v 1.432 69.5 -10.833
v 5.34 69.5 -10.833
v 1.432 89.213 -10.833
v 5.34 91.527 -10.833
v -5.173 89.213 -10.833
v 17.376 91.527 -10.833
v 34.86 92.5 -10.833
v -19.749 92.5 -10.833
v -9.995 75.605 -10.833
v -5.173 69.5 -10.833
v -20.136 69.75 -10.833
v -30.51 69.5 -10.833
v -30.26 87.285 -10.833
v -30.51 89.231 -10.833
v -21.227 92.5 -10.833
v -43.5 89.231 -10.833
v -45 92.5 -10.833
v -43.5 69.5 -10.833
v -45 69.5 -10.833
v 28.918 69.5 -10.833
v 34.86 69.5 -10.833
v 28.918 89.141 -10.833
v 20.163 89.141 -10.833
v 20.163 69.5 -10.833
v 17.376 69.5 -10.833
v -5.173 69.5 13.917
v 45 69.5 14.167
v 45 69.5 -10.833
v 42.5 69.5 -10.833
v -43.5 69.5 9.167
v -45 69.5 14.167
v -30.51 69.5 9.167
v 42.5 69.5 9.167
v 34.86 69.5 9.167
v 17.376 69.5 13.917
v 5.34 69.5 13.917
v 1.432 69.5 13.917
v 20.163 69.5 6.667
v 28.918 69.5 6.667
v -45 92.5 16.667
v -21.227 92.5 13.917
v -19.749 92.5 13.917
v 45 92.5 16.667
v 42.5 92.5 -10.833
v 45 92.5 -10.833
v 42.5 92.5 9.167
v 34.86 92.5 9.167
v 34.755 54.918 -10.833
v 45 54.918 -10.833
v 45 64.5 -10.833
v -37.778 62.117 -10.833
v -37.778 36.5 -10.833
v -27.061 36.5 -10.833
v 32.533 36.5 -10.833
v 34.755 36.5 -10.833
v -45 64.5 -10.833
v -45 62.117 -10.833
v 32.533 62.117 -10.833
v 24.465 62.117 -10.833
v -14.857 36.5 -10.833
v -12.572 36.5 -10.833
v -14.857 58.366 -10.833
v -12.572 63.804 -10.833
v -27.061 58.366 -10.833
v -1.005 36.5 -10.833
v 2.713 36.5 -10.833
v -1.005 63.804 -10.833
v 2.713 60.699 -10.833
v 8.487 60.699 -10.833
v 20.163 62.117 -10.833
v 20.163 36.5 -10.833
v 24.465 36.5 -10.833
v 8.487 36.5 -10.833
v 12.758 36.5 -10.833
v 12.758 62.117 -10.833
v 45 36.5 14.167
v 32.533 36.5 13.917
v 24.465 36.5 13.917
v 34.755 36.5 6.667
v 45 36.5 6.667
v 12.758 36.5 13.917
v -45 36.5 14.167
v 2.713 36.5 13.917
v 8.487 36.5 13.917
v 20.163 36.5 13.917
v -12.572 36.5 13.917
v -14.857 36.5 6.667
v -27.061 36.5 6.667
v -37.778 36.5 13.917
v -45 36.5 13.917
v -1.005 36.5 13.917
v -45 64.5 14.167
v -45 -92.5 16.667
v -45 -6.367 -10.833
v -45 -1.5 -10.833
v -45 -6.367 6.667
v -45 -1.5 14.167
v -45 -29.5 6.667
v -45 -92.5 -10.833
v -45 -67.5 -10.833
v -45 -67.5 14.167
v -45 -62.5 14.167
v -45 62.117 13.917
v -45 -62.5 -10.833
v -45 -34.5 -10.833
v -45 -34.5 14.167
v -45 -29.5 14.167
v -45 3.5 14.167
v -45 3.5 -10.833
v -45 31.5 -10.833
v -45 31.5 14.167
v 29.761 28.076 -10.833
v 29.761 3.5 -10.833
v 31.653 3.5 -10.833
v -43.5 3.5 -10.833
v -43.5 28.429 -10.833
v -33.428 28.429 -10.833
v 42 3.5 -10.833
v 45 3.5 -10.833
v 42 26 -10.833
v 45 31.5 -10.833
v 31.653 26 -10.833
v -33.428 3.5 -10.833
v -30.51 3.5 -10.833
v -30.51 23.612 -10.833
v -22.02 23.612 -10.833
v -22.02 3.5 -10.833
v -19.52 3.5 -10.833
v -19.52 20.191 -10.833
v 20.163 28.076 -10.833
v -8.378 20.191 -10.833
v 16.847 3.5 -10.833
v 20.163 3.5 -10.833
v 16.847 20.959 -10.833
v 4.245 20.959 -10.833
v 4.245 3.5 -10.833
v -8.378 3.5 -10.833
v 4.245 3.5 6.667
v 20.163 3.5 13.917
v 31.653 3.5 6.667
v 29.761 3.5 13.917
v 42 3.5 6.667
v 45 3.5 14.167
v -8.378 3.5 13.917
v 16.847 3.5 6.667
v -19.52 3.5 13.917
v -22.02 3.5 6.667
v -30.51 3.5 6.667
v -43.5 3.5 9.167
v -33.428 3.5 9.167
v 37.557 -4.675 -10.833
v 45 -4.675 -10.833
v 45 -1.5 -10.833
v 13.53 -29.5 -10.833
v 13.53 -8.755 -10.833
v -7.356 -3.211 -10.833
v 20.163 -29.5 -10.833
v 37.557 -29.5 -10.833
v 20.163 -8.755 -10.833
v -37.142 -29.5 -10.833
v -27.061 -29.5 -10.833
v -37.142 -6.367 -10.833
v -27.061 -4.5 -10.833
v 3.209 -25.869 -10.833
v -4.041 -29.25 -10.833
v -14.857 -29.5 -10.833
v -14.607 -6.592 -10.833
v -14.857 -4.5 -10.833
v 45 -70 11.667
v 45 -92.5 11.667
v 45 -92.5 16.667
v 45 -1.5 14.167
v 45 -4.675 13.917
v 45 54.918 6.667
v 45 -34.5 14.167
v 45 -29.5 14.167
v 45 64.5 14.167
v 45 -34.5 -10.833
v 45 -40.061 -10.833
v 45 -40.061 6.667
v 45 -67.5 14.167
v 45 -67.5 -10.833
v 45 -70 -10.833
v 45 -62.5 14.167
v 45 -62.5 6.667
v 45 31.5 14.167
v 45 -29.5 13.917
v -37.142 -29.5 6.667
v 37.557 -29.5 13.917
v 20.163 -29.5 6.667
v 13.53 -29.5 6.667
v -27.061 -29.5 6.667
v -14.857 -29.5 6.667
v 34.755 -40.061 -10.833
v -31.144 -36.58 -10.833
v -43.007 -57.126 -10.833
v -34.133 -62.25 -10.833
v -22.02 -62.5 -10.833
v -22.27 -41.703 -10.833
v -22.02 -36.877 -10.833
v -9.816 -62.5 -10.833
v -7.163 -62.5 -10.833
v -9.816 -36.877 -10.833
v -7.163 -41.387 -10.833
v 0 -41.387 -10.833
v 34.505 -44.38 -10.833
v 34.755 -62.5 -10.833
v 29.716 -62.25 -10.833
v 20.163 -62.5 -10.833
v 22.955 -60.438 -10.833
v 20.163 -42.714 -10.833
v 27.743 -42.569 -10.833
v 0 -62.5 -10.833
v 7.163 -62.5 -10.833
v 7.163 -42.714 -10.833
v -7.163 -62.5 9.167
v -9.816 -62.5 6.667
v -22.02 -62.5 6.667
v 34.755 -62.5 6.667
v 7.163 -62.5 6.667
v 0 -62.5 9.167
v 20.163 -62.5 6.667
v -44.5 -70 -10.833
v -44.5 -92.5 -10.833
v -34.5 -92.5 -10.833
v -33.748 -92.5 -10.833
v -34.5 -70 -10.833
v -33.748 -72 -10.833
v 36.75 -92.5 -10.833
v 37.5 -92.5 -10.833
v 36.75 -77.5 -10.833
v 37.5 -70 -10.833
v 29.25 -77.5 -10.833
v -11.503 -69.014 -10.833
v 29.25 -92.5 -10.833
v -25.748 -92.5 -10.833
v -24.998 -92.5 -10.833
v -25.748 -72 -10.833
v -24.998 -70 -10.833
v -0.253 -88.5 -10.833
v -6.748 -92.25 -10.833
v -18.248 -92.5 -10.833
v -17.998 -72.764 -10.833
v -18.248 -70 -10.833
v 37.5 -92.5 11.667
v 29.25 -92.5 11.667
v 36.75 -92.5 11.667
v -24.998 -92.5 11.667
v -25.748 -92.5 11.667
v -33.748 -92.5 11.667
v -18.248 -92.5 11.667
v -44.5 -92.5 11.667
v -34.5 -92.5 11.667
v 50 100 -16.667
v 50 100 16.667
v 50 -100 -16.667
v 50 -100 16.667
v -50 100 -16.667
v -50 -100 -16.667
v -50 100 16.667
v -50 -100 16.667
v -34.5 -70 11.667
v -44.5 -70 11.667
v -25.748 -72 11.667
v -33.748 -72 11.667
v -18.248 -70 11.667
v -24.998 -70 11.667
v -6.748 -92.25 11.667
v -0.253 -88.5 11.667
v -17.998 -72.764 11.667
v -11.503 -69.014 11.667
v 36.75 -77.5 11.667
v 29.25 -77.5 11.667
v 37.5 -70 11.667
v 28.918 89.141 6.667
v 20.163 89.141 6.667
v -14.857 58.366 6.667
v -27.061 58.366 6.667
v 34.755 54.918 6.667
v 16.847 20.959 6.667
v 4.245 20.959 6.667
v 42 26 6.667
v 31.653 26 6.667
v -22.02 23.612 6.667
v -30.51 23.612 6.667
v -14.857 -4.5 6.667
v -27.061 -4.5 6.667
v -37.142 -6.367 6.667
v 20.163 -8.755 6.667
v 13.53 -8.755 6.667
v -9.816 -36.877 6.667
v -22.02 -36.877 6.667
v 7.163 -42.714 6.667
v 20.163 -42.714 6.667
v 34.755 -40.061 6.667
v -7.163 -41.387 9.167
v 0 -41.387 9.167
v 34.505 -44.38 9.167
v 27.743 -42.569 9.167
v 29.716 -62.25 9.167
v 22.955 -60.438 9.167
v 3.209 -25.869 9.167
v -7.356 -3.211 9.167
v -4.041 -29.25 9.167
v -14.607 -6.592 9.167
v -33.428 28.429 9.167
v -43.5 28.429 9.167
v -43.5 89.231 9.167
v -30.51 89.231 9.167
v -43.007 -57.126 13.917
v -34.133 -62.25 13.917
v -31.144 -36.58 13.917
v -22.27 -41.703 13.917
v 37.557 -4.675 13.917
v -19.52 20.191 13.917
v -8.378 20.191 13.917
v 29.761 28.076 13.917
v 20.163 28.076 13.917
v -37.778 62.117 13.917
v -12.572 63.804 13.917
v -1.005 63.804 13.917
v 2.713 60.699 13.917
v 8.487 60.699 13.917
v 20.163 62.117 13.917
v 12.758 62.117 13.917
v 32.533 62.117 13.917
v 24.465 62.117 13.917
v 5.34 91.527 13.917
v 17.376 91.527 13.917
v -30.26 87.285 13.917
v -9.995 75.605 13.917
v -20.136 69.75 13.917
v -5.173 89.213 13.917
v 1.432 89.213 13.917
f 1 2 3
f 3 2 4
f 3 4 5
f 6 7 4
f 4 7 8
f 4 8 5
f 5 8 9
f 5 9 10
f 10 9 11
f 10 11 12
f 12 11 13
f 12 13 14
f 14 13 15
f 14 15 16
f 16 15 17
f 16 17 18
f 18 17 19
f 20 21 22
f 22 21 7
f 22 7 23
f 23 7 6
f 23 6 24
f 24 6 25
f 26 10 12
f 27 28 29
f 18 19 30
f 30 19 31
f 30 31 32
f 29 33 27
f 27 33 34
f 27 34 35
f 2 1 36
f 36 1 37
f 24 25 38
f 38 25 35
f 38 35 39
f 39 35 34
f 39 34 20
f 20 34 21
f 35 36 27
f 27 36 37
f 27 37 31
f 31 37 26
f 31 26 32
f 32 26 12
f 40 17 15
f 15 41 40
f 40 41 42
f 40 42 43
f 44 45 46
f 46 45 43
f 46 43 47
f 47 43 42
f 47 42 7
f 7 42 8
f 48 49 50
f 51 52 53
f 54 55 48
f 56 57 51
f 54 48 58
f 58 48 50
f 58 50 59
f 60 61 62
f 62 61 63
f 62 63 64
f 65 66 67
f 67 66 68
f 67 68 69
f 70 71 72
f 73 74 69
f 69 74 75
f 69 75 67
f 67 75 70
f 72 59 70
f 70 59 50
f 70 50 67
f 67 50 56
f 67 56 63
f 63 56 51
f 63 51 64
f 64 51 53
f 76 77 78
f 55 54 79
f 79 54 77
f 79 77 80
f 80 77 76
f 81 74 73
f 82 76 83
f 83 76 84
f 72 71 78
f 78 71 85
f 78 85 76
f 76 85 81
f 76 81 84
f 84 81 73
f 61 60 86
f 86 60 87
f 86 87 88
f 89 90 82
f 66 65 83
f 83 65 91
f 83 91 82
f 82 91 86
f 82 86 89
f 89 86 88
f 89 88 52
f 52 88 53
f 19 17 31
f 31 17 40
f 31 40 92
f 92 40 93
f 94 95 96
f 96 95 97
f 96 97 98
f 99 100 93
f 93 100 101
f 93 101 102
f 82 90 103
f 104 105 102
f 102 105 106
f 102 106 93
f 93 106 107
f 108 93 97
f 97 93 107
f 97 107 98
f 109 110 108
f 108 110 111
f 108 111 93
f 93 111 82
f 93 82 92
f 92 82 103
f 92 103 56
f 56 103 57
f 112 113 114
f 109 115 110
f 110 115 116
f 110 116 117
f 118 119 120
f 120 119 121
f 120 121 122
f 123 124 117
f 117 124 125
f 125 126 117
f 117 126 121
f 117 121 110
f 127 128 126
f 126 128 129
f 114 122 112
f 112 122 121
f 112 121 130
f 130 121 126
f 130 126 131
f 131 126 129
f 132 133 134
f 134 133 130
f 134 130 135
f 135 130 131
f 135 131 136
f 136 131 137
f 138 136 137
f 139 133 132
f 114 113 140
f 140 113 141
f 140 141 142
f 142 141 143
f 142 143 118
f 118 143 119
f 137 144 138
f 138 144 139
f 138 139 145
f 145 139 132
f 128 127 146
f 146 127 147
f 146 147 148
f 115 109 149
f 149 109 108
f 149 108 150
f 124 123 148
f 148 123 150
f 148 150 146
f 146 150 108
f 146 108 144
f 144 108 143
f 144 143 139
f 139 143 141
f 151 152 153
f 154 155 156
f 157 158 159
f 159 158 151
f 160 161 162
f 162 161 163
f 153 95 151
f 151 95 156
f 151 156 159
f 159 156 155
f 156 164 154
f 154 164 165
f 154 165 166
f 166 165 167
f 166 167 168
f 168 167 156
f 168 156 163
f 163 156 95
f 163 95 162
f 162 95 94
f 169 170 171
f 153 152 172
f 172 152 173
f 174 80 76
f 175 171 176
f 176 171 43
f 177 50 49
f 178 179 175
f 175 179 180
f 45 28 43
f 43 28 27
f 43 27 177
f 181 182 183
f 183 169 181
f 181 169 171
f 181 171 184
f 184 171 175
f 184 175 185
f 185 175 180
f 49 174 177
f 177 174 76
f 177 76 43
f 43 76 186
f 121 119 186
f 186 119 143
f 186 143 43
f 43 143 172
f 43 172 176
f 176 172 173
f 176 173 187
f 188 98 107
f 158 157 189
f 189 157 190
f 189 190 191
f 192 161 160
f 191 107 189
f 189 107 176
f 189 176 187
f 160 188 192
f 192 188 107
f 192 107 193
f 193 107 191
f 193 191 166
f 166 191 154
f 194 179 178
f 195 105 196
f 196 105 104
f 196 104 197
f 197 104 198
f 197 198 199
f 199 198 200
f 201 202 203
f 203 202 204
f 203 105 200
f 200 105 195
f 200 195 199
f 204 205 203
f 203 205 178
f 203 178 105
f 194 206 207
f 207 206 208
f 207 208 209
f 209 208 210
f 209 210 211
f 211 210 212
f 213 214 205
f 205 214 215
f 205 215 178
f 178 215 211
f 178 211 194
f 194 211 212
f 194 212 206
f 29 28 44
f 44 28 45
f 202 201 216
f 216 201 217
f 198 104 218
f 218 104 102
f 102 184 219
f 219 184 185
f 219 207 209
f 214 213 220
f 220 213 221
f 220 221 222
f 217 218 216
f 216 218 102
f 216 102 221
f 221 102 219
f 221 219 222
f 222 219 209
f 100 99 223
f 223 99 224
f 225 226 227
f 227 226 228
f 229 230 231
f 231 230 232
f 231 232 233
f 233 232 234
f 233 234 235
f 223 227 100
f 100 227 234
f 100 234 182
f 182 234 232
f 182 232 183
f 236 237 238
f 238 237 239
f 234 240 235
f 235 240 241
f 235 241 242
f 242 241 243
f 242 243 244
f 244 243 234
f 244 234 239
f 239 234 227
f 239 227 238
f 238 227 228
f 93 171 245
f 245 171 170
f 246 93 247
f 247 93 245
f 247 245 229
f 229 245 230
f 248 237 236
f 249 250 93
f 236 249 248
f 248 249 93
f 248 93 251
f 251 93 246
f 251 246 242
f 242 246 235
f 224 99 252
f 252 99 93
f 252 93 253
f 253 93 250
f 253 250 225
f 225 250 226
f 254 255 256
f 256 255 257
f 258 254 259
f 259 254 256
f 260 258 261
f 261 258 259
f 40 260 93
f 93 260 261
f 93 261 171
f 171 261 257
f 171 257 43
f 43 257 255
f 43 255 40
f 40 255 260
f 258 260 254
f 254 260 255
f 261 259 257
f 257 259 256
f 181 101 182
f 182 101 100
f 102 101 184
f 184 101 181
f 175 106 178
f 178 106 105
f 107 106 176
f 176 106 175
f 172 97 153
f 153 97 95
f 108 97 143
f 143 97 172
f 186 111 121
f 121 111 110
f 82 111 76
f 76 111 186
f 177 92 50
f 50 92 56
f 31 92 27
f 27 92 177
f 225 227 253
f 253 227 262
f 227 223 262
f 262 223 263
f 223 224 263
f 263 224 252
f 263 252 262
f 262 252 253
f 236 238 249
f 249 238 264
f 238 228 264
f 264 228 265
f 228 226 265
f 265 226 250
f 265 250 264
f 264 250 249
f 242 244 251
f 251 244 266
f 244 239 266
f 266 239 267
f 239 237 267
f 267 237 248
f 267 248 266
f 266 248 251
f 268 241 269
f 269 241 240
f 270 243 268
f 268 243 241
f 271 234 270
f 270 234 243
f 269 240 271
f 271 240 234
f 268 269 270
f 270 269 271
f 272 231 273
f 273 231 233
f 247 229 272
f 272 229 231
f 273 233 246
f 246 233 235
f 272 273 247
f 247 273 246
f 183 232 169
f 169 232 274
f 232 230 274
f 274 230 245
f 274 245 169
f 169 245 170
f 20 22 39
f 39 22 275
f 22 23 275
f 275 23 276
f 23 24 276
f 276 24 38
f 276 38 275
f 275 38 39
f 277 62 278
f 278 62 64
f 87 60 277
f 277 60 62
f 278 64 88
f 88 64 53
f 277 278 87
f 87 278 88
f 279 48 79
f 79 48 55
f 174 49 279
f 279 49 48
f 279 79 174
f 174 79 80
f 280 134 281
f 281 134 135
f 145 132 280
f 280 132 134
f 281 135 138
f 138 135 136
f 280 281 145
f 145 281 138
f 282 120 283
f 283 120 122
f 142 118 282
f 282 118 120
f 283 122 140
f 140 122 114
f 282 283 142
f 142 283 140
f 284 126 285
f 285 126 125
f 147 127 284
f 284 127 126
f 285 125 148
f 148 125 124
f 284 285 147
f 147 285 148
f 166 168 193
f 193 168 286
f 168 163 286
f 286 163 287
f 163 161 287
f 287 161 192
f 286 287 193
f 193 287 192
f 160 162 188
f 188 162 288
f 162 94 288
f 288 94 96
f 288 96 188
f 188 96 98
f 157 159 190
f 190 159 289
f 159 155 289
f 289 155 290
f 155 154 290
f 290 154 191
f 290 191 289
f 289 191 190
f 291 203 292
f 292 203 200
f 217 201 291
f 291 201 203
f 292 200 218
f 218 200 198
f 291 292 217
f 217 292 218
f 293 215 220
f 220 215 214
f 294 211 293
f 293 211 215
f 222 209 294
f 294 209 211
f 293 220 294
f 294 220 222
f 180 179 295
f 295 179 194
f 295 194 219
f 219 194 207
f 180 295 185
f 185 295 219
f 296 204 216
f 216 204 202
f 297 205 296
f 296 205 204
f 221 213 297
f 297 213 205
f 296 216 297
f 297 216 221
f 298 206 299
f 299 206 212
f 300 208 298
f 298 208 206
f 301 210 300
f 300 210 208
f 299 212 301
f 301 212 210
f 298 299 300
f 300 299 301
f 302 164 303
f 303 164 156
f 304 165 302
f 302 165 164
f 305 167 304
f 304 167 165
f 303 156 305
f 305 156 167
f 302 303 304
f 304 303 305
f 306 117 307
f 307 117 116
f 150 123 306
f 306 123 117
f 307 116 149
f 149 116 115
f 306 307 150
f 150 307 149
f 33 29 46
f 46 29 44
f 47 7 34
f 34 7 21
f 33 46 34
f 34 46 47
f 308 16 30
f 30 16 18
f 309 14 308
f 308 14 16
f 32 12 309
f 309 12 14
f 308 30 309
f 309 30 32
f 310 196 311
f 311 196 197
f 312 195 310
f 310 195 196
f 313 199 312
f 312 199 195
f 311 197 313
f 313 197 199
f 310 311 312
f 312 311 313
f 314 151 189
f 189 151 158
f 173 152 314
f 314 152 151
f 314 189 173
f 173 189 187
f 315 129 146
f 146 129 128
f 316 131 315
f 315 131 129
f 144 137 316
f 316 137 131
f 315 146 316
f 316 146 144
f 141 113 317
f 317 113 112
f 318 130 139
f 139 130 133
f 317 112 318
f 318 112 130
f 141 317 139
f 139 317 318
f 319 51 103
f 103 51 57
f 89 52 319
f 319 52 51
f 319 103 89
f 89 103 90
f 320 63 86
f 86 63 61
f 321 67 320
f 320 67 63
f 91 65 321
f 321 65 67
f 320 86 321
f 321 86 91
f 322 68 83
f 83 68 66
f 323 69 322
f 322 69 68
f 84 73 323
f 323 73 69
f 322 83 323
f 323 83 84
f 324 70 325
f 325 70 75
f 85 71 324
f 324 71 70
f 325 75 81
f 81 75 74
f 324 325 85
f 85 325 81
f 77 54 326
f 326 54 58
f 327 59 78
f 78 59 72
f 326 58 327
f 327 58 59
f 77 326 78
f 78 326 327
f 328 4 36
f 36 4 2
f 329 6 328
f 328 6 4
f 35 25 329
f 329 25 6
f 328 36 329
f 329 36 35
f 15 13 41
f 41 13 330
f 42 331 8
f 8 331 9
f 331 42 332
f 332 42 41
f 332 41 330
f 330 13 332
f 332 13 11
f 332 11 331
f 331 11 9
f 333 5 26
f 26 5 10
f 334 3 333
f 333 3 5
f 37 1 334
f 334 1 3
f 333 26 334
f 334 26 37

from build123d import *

# Parameters (mm, degrees)
SKETCH1_W           = 100
SKETCH1_H           = 33.333333334
BOSS_EXTRUDE1_DEPTH = 100
SKETCH2_W           = 90
SKETCH2_H           = 185
CUT_EXTRUDE1_DEPTH  = 27.5
SKETCH3_W           = 90
SKETCH3_H           = 5
BOSS_EXTRUDE2_DEPTH = 25
SKETCH4_W           = 7.5
SKETCH4_H           = 22.5
SKETCH4_H_2         = 15
SKETCH4_W_2         = 10
SKETCH4_W_3         = 8
SKETCH4_H_3         = 20.5
SKETCH4_W_4         = 6.75
BOSS_EXTRUDE5_DEPTH = 22.5
SKETCH5_W           = 10.245435458
SKETCH5_H           = 22.43939507
SKETCH5_W_2         = 12.999798951
SKETCH5_H_2         = 19.786374876
SKETCH5_W_3         = 12.203892893
SKETCH5_H_3         = 25.623019303
SKETCH5_W_4         = 7.857717283
SKETCH5_H_4         = 23.132751534
SKETCH5_W_5         = 12.203892892
SKETCH5_H_5         = 25
SKETCH5_W_6         = 6.632550485
SKETCH5_H_6         = 20.74503336
SKETCH5_W_7         = 10.346778757
SKETCH5_H_7         = 22.499597902
SKETCH5_W_8         = 12.601845922
SKETCH5_H_8         = 17.458859533
SKETCH5_W_9         = 8.489664621
SKETCH5_H_9         = 20.111879727
SKETCH5_H_10        = 18.417518017
SKETCH5_H_11        = 21.866444269
SKETCH5_W_10        = 8.75496664
SKETCH5_H_12        = 19.64147852
BOSS_EXTRUDE6_DEPTH = 17.5
SKETCH6_W           = 7.163154524
SKETCH6_H           = 21.112884973
SKETCH6_W_2         = 10.071772785
SKETCH6_H_2         = 24.928709858
SKETCH6_W_3         = 7.639556761
SKETCH6_H_3         = 23
SKETCH6_W_4         = 12.990267768
SKETCH6_H_4         = 19.731154058
BOSS_EXTRUDE7_DEPTH = 20
SKETCH7_W           = 7.443100334
SKETCH7_H           = 24.824572523
SKETCH7_W_2         = 11.141906558
SKETCH7_H_2         = 16.691268837
SKETCH7_W_3         = 9.597619028
SKETCH7_H_3         = 24.576310401
SKETCH7_W_4         = 7.222078614
SKETCH7_H_4         = 25.616891847
SKETCH7_W_5         = 11.567302571
SKETCH7_H_5         = 27.303769204
SKETCH7_W_6         = 5.774265567
SKETCH7_H_6         = 24.198791538
SKETCH7_W_7         = 7.404792338
SKETCH7_W_8         = 8.068151888
SKETCH7_W_9         = 12.035735356
SKETCH7_H_7         = 22.027016439
SKETCH7_W_10        = 6.605492776
SKETCH7_H_8         = 19.712859317
BOSS_EXTRUDE9_DEPTH = 24.75


with BuildPart() as part:
    # Sketch1 → Boss-Extrude1 (new body, symmetric)
    with BuildSketch(Plane(origin=(0, 0, 0), x_dir=(1, 0, 0), z_dir=(0, 1, 0))):
        Rectangle(SKETCH1_W, SKETCH1_H)
    extrude(amount=BOSS_EXTRUDE1_DEPTH, both=True)

    # Sketch2 → Cut-Extrude1 (cut)
    with BuildSketch(Plane.XY.offset(16.666666667)):
        Rectangle(SKETCH2_W, SKETCH2_H)
    extrude(amount=-CUT_EXTRUDE1_DEPTH, mode=Mode.SUBTRACT)

    # Sketch3 → Boss-Extrude2 (add)
    with BuildSketch(Plane.XY.offset(-10.833333333)):
        with Locations((0, -65)):
            Rectangle(SKETCH3_W, SKETCH3_H)
        with Locations((0, -32)):
            Rectangle(SKETCH3_W, SKETCH3_H)
        with Locations((0, 1)):
            Rectangle(SKETCH3_W, SKETCH3_H)
        with Locations((0, 34)):
            Rectangle(SKETCH3_W, SKETCH3_H)
        with Locations((0, 67)):
            Rectangle(SKETCH3_W, SKETCH3_H)
    extrude(amount=BOSS_EXTRUDE2_DEPTH)

    # Sketch4 → Boss-Extrude5 (add)
    with BuildSketch(Plane.XY.offset(-10.833333333)):
        with Locations((41.25, -81.25)):
            Rectangle(SKETCH4_W, SKETCH4_H)
        with Locations((33, -85)):
            Rectangle(SKETCH4_W, SKETCH4_H_2)
        with Locations((-39.5, -81.25)):
            Rectangle(SKETCH4_W_2, SKETCH4_H)
        with Locations((-29.7477, -82.25)):
            Rectangle(SKETCH4_W_3, SKETCH4_H_3)
        with Locations((-21.6227, -81.25)):
            Rectangle(SKETCH4_W_4, SKETCH4_H)
        Polygon((-17.9977, -72.764428415), (-6.7477, -92.25), (-0.252509472, -88.5), (-11.502509472, -69.014428415), align=None)
    extrude(amount=BOSS_EXTRUDE5_DEPTH)

    # Sketch5 → Boss-Extrude6 (add)
    with BuildSketch(Plane.XY.offset(-10.833333333)):
        with Locations((39.877282271, -51.280302465)):
            Rectangle(SKETCH5_W, SKETCH5_H)
        with Locations((13.663054, -52.606812562)):
            Rectangle(SKETCH5_W_2, SKETCH5_H_2)
        with Locations((-15.918121165, -49.688490349)):
            Rectangle(SKETCH5_W_3, SKETCH5_H_3)
        with Locations((-41.071141359, -17.933624233)):
            Rectangle(SKETCH5_W_4, SKETCH5_H_4)
        with Locations((-20.958859533, -17)):
            Rectangle(SKETCH5_W_5, SKETCH5_H_5)
        with Locations((16.846678233, -19.12748332)):
            Rectangle(SKETCH5_W_6, SKETCH5_H_6)
        with Locations((36.826610622, 14.749798951)):
            Rectangle(SKETCH5_W_7, SKETCH5_H_7)
        with Locations((10.545755271, 12.229429767)):
            Rectangle(SKETCH5_W_8, SKETCH5_H_8)
        with Locations((-26.264899922, 13.555939864)):
            Rectangle(SKETCH5_W_9, SKETCH5_H_9)
        with Locations((39.877282271, 45.708759009)):
            Rectangle(SKETCH5_W, SKETCH5_H_10)
        with Locations((-20.958859533, 47.433222134)):
            Rectangle(SKETCH5_W_5, SKETCH5_H_11)
        with Locations((24.540436795, 79.32073926)):
            Rectangle(SKETCH5_W_10, SKETCH5_H_12)
    extrude(amount=BOSS_EXTRUDE6_DEPTH)

    # Sketch6 → Boss-Extrude7 (add)
    with BuildSketch(Plane.XY.offset(-10.833333333)):
        with Locations((-3.581577262, -51.943557514)):
            Rectangle(SKETCH6_W, SKETCH6_H)
        Polygon((27.743083758, -42.568638898), (34.504564542, -44.380372214), (29.716412208, -62.25), (22.954931424, -60.438266684), align=None)
        Polygon((-14.606913087, -6.592305324), (-4.041456543, -29.25), (3.209005753, -25.869053906), (-7.35645079, -3.21135923), align=None)
        with Locations((-38.464113607, 15.964354929)):
            Rectangle(SKETCH6_W_2, SKETCH6_H_2)
        with Locations((38.68022162, 81)):
            Rectangle(SKETCH6_W_3, SKETCH6_H_3)
        with Locations((-37.004866116, 79.365577029)):
            Rectangle(SKETCH6_W_4, SKETCH6_H_4)
    extrude(amount=BOSS_EXTRUDE7_DEPTH)

    # Sketch7 → Boss-Extrude9 (add)
    with BuildSketch(Plane.XY.offset(-10.833333333)):
        Polygon((-22.270067611, -41.703177725), (-31.144265017, -36.579657463), (-43.006978388, -57.126479739), (-34.132780982, -62.25), align=None)
        with Locations((41.278449833, -17.087713739)):
            Rectangle(SKETCH7_W, SKETCH7_H)
        with Locations((-13.949114332, 11.845634419)):
            Rectangle(SKETCH7_W_2, SKETCH7_H_2)
        with Locations((24.961762989, 15.788155201)):
            Rectangle(SKETCH7_W_3, SKETCH7_H_3)
        with Locations((-41.388960693, 49.308445924)):
            Rectangle(SKETCH7_W_4, SKETCH7_H_4)
        with Locations((-6.788808075, 50.151884602)):
            Rectangle(SKETCH7_W_5, SKETCH7_H_5)
        with Locations((5.599653825, 48.599395769)):
            Rectangle(SKETCH7_W_6, SKETCH7_H_6)
        with Locations((16.460557306, 49.308445924)):
            Rectangle(SKETCH7_W_7, SKETCH7_H_4)
        with Locations((28.498967272, 49.308445924)):
            Rectangle(SKETCH7_W_8, SKETCH7_H_4)
        Polygon((-30.259732232, 87.284915382), (-20.135944116, 69.75), (-9.994868577, 75.604952692), (-20.118656693, 93.139868074), align=None)
        with Locations((11.35767736, 80.51350822)):
            Rectangle(SKETCH7_W_9, SKETCH7_H_7)
        with Locations((-1.87064299, 79.356429659)):
            Rectangle(SKETCH7_W_10, SKETCH7_H_8)
    extrude(amount=BOSS_EXTRUDE9_DEPTH)


solid = part.part
